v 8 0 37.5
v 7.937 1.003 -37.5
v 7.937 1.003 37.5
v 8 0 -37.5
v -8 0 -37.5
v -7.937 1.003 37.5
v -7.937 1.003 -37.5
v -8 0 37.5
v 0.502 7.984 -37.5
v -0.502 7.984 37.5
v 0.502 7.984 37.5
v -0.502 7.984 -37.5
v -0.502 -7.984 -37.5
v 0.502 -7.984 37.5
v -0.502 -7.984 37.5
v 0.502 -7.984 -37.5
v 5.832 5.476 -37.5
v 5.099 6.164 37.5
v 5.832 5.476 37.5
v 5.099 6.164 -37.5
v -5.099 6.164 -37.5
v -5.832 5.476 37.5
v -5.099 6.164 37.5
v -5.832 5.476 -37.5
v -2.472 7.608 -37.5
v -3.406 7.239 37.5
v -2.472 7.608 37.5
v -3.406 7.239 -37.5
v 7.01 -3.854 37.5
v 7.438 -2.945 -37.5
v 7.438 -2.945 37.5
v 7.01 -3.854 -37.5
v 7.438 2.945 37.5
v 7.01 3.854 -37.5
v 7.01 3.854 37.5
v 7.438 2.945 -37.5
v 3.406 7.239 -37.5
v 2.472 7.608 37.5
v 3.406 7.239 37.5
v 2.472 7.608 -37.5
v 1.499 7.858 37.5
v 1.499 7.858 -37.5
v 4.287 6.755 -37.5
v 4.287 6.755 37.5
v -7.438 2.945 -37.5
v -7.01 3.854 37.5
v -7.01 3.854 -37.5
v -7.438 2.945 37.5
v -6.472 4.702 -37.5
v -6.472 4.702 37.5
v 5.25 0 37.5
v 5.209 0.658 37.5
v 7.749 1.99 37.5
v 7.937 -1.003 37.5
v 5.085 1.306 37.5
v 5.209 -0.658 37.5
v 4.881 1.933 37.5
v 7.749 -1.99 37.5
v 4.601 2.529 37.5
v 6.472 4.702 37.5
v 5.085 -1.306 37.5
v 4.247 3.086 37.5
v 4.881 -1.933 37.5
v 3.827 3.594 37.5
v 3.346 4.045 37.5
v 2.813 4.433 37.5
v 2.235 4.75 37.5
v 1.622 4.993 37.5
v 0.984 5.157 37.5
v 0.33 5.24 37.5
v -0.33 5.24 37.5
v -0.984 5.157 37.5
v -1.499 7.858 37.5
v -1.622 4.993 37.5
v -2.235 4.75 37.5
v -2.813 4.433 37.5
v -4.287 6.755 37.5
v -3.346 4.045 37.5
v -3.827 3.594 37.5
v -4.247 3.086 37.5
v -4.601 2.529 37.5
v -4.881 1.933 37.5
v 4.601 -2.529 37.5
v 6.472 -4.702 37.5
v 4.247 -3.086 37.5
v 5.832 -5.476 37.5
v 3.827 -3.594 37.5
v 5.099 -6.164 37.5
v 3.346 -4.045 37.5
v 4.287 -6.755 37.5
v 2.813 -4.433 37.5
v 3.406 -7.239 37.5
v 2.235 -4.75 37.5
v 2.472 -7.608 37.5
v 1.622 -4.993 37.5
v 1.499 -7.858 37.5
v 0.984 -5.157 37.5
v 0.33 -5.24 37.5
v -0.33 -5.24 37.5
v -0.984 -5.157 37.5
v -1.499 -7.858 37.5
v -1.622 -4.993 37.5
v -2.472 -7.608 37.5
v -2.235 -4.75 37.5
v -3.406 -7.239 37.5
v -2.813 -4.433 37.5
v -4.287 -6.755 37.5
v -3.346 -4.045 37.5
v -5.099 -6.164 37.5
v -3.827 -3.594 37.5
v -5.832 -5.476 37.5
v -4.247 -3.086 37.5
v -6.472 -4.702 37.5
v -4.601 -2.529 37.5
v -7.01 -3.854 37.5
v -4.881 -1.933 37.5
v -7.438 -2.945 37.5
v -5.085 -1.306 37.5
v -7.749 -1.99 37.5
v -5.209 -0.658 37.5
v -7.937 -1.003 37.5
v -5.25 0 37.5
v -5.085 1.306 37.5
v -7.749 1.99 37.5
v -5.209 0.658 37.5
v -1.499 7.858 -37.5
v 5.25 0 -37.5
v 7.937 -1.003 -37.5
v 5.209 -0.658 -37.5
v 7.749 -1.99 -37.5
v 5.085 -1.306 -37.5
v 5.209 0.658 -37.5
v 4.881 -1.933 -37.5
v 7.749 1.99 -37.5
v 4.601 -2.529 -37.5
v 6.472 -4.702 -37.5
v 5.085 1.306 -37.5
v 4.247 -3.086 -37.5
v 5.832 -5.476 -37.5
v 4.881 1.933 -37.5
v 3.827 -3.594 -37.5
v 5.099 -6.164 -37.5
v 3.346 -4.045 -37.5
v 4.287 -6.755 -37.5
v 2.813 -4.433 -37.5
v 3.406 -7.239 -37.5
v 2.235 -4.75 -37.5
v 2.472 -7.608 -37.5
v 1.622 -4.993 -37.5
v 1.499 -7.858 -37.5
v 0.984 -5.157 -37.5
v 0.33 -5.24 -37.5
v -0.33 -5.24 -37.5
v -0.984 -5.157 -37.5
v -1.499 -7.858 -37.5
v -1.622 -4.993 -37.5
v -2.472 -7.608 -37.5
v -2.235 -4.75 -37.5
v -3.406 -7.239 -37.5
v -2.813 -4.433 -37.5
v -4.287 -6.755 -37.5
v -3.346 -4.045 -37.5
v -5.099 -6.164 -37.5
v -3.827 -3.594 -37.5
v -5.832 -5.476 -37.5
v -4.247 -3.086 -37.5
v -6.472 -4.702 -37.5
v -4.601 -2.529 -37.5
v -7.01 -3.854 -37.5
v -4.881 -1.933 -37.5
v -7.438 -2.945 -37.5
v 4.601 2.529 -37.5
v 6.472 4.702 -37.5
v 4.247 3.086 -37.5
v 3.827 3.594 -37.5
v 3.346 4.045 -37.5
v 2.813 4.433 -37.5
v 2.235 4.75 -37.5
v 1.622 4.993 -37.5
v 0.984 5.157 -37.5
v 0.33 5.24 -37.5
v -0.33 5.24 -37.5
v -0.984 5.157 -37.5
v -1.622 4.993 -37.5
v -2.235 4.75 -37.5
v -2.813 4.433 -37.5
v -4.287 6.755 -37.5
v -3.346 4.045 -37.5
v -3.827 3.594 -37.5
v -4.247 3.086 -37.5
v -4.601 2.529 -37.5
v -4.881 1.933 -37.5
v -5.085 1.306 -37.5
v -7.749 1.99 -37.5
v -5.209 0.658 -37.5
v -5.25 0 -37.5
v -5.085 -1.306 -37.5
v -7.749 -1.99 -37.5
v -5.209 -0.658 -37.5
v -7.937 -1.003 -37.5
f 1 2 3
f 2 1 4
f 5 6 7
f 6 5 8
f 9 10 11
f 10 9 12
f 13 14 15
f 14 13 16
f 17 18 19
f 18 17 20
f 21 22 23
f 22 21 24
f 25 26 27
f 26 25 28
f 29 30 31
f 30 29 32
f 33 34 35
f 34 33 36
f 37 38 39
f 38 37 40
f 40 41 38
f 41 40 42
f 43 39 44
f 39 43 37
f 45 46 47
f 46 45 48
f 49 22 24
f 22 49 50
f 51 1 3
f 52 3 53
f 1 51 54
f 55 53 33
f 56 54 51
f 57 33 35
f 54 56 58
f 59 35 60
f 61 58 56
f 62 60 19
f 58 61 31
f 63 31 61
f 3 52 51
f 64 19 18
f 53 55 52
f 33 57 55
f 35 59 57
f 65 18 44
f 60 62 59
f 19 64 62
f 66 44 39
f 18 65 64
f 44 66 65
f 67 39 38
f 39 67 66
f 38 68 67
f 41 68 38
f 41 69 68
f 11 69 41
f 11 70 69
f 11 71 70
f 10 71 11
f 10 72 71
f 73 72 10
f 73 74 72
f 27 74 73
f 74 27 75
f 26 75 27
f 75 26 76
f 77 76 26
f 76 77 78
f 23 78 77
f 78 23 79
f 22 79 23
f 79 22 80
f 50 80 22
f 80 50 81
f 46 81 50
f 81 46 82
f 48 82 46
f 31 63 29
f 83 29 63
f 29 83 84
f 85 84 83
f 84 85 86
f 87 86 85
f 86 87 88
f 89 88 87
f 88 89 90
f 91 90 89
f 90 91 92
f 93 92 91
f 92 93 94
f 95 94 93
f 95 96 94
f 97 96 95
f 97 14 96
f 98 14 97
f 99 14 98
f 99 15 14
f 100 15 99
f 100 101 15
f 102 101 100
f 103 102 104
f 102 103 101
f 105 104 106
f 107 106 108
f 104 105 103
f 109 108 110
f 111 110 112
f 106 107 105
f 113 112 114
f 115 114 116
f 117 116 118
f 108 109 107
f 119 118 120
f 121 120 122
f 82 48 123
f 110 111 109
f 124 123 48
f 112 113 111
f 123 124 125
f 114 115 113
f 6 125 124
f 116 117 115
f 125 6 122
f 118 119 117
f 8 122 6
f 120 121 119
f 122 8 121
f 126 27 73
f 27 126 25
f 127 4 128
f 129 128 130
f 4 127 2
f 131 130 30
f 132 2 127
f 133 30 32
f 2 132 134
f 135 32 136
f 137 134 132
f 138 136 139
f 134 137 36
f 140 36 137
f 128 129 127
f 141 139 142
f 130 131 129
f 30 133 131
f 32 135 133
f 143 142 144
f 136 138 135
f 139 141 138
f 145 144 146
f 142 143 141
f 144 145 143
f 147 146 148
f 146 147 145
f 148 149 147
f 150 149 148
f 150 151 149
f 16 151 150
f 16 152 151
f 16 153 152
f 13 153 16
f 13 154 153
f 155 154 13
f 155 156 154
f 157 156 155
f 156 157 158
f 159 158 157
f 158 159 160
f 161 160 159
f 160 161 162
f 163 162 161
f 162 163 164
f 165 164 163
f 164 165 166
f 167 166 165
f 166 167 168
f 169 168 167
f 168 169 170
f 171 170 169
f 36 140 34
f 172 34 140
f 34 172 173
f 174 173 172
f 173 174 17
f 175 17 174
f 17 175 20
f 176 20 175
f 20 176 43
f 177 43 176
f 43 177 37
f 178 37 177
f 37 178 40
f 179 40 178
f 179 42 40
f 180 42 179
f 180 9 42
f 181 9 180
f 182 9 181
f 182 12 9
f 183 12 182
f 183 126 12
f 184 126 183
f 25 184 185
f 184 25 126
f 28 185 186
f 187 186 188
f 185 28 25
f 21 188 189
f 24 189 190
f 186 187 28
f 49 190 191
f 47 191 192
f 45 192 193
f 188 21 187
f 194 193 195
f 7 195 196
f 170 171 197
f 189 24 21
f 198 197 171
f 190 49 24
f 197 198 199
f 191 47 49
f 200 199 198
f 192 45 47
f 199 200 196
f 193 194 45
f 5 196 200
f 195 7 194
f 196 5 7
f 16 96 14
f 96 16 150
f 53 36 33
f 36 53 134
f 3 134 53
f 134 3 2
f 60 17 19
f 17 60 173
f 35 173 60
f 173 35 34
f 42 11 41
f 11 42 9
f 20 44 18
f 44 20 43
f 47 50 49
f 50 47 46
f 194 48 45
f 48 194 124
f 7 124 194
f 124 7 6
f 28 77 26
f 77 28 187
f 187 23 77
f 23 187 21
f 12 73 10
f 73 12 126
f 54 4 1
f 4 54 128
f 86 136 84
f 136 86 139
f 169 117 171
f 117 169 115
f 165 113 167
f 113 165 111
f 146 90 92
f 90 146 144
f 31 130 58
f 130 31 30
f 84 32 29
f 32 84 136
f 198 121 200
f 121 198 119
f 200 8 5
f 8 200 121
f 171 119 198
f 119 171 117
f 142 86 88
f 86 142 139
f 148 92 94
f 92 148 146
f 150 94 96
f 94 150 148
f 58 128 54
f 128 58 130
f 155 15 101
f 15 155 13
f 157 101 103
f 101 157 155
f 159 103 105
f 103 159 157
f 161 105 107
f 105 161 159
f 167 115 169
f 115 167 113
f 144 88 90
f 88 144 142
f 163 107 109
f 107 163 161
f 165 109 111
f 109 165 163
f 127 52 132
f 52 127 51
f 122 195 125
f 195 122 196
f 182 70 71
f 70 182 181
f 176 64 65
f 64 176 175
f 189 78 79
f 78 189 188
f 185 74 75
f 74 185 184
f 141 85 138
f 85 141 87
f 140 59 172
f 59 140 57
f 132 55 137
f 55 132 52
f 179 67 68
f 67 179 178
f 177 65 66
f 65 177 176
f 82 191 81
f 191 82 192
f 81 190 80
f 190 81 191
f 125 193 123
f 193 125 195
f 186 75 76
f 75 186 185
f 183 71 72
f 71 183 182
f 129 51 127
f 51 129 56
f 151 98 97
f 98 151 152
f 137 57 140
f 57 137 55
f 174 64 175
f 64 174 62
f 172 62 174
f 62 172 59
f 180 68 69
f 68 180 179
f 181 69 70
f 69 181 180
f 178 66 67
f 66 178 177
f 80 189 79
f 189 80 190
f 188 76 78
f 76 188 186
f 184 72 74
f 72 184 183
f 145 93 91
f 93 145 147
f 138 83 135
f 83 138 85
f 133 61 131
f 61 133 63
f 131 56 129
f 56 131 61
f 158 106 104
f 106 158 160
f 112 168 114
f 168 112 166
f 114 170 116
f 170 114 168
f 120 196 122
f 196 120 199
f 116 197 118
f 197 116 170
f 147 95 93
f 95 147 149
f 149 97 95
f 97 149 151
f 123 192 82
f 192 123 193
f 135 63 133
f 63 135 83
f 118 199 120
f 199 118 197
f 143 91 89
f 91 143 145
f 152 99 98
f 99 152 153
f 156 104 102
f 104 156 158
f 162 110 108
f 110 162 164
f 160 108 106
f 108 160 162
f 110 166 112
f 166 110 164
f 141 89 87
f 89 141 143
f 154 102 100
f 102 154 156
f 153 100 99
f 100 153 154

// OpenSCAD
$fn = 50;


difference() {
	union() {
		translate(v = [0, 0, -37.5000000000]) {
			cylinder(h = 75, r = 8.0000000000);
		}
	}
	union() {
		translate(v = [0, 0, -100.0000000000]) {
			cylinder(h = 200, r = 5.2500000000);
		}
	}
}
